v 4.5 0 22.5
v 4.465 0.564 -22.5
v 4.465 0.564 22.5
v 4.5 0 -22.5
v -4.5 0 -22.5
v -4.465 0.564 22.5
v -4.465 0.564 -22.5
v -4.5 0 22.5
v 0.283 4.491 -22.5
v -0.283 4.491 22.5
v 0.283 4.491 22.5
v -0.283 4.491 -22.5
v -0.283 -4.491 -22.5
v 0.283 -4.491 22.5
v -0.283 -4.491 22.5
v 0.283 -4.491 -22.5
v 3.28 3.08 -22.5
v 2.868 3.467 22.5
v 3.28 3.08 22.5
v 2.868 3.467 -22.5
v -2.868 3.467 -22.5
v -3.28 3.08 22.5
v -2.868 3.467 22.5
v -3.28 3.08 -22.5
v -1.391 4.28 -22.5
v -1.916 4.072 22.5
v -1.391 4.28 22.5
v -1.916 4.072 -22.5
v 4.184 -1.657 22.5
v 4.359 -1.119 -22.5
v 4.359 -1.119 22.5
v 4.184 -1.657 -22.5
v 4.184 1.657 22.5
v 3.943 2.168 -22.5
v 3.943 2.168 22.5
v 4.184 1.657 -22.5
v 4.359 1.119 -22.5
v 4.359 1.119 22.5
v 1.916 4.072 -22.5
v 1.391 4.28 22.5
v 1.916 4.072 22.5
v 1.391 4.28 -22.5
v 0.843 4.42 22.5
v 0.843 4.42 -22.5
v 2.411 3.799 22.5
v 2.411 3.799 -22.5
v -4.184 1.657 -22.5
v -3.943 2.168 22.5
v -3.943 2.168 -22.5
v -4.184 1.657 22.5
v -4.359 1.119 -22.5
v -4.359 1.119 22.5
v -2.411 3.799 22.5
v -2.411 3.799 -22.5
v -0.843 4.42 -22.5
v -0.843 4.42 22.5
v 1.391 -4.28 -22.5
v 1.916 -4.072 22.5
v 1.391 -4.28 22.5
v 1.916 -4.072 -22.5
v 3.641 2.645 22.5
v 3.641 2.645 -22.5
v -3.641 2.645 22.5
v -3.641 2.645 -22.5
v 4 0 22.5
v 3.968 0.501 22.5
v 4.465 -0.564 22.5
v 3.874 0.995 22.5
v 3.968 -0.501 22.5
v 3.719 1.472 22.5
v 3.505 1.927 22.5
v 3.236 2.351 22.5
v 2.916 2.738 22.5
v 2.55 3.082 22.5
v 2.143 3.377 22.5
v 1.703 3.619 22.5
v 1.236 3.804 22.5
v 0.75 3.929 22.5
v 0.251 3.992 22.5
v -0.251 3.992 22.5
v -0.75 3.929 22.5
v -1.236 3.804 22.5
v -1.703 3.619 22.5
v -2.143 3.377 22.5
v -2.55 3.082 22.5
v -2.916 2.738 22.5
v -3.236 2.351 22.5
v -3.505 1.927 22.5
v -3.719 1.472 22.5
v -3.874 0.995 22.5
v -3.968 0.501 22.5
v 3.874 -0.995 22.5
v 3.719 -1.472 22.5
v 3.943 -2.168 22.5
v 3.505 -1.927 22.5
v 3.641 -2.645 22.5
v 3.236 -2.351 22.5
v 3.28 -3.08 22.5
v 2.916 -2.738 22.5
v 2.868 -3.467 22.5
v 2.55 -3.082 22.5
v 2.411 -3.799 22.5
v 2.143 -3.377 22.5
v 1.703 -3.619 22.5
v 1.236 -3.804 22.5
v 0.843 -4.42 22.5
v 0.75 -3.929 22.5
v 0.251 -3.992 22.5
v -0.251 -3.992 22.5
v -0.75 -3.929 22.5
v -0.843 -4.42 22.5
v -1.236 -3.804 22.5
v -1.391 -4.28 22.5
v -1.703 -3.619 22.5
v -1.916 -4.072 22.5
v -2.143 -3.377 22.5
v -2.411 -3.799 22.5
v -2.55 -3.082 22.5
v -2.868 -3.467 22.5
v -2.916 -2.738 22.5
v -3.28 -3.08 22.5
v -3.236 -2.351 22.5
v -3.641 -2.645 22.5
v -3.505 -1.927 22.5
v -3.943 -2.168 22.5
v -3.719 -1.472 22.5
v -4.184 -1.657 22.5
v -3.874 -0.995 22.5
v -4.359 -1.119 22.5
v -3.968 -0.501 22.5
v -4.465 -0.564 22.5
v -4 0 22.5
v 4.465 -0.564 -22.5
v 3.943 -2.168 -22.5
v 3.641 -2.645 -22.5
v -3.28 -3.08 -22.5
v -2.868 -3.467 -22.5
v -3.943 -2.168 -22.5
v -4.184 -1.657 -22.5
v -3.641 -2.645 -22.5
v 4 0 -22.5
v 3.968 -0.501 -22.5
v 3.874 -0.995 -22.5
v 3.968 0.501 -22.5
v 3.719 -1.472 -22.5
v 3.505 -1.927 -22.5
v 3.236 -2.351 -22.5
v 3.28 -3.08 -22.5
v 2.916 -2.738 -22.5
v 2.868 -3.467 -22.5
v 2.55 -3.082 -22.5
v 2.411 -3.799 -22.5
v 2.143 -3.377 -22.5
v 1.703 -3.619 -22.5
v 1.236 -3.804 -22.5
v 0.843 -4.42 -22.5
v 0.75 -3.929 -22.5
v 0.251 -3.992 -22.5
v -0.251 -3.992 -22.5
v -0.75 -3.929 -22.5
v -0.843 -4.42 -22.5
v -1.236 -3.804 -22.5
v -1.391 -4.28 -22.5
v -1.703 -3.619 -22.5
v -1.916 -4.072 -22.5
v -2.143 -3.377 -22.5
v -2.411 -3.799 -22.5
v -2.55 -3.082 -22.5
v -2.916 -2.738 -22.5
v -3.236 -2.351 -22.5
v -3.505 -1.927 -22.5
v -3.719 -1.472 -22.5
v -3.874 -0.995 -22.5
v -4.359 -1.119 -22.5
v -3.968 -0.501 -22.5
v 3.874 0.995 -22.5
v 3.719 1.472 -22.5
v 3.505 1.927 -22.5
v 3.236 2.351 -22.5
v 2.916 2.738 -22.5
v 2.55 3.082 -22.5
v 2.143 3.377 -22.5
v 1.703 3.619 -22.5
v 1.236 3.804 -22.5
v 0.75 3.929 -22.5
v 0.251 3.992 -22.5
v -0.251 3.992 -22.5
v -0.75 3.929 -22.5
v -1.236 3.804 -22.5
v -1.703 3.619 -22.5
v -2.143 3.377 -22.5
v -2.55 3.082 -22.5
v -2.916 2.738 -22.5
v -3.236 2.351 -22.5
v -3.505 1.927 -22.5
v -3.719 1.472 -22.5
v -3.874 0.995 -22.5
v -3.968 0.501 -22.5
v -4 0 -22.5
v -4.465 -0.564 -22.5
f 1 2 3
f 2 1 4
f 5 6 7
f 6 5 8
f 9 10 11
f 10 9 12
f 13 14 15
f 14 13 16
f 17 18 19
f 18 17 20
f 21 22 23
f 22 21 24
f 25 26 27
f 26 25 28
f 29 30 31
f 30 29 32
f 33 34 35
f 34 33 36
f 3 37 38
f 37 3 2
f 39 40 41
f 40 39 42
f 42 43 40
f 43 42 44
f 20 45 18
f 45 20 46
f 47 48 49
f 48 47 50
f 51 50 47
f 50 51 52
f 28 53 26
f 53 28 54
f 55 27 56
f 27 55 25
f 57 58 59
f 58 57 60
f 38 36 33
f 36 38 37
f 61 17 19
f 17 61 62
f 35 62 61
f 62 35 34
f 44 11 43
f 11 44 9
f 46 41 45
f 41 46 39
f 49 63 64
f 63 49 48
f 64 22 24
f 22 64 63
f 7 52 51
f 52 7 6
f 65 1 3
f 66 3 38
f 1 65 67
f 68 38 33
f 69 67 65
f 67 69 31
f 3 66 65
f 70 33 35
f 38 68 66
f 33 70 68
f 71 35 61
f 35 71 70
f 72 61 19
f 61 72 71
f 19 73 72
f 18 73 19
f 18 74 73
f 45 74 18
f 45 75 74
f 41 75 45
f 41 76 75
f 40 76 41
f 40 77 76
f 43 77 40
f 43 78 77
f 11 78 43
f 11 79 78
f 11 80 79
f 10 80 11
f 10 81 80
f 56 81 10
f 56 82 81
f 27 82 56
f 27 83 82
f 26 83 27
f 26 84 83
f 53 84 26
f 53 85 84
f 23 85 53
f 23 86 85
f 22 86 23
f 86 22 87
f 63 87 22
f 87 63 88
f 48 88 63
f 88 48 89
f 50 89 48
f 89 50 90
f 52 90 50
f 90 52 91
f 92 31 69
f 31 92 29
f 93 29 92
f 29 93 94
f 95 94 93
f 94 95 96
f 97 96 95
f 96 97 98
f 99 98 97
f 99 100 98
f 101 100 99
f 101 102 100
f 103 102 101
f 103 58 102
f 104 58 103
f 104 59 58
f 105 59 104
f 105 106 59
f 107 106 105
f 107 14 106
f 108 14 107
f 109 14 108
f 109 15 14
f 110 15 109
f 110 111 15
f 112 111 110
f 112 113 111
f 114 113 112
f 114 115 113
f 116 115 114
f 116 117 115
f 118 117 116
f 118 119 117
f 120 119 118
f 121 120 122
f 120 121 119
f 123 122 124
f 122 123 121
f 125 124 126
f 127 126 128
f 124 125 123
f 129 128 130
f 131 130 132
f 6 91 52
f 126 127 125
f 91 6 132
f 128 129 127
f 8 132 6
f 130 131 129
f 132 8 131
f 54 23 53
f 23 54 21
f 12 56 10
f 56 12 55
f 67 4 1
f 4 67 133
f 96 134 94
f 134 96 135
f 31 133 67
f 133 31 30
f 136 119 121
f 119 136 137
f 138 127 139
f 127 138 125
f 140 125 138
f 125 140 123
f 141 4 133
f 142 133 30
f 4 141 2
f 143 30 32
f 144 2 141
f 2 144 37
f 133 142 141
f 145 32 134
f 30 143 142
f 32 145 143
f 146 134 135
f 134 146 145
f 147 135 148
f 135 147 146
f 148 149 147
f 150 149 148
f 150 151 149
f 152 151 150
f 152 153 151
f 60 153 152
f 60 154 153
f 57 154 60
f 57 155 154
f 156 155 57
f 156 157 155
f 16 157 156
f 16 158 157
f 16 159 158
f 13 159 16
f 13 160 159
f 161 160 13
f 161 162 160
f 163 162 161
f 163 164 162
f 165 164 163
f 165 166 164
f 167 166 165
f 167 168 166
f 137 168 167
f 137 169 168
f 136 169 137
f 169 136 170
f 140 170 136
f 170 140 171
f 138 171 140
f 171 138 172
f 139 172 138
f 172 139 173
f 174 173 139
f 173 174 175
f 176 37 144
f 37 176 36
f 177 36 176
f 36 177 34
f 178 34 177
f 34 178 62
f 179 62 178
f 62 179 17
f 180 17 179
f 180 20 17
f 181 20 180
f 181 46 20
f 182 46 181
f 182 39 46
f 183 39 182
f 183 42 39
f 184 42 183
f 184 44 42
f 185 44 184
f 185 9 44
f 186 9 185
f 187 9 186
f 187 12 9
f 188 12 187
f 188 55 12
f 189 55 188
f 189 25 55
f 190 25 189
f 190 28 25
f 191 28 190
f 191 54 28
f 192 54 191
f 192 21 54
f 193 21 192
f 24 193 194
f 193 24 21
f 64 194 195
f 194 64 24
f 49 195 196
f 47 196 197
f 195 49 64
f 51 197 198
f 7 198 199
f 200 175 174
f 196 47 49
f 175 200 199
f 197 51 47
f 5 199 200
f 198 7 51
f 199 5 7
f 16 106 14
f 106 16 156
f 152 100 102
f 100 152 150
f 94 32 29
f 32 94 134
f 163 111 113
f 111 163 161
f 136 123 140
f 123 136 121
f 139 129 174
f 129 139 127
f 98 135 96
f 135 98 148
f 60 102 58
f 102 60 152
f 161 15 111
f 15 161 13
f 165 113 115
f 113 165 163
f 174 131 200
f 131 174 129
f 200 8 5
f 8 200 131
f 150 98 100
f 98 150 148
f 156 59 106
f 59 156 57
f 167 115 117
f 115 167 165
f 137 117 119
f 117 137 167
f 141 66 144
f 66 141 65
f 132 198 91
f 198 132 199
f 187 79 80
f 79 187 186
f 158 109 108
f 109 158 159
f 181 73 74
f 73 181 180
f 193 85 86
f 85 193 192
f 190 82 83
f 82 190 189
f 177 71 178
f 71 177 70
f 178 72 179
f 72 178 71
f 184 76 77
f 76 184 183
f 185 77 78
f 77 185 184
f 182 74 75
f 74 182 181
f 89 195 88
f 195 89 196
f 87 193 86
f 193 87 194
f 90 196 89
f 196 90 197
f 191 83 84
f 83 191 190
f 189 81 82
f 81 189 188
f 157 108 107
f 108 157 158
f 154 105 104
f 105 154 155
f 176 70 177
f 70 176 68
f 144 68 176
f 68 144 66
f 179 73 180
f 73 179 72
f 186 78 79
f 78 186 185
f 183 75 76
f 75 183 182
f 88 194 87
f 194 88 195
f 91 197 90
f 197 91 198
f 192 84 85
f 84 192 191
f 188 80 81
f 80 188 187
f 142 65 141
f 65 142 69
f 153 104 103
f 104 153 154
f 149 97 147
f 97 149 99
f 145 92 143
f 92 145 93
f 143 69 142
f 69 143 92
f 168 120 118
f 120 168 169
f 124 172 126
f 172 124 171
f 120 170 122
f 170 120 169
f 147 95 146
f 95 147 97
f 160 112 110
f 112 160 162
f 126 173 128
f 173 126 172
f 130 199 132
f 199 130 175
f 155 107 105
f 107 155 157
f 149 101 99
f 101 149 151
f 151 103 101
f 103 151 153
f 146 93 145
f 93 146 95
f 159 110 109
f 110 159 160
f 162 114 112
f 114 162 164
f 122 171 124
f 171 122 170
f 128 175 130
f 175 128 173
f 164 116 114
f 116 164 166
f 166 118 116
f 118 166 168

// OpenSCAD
$fn = 50;


difference() {
	union() {
		translate(v = [0, 0, -22.5000000000]) {
			cylinder(h = 45, r = 4.5000000000);
		}
	}
	union() {
		translate(v = [0, 0, -100.0000000000]) {
			cylinder(h = 200, r = 4);
		}
	}
}
